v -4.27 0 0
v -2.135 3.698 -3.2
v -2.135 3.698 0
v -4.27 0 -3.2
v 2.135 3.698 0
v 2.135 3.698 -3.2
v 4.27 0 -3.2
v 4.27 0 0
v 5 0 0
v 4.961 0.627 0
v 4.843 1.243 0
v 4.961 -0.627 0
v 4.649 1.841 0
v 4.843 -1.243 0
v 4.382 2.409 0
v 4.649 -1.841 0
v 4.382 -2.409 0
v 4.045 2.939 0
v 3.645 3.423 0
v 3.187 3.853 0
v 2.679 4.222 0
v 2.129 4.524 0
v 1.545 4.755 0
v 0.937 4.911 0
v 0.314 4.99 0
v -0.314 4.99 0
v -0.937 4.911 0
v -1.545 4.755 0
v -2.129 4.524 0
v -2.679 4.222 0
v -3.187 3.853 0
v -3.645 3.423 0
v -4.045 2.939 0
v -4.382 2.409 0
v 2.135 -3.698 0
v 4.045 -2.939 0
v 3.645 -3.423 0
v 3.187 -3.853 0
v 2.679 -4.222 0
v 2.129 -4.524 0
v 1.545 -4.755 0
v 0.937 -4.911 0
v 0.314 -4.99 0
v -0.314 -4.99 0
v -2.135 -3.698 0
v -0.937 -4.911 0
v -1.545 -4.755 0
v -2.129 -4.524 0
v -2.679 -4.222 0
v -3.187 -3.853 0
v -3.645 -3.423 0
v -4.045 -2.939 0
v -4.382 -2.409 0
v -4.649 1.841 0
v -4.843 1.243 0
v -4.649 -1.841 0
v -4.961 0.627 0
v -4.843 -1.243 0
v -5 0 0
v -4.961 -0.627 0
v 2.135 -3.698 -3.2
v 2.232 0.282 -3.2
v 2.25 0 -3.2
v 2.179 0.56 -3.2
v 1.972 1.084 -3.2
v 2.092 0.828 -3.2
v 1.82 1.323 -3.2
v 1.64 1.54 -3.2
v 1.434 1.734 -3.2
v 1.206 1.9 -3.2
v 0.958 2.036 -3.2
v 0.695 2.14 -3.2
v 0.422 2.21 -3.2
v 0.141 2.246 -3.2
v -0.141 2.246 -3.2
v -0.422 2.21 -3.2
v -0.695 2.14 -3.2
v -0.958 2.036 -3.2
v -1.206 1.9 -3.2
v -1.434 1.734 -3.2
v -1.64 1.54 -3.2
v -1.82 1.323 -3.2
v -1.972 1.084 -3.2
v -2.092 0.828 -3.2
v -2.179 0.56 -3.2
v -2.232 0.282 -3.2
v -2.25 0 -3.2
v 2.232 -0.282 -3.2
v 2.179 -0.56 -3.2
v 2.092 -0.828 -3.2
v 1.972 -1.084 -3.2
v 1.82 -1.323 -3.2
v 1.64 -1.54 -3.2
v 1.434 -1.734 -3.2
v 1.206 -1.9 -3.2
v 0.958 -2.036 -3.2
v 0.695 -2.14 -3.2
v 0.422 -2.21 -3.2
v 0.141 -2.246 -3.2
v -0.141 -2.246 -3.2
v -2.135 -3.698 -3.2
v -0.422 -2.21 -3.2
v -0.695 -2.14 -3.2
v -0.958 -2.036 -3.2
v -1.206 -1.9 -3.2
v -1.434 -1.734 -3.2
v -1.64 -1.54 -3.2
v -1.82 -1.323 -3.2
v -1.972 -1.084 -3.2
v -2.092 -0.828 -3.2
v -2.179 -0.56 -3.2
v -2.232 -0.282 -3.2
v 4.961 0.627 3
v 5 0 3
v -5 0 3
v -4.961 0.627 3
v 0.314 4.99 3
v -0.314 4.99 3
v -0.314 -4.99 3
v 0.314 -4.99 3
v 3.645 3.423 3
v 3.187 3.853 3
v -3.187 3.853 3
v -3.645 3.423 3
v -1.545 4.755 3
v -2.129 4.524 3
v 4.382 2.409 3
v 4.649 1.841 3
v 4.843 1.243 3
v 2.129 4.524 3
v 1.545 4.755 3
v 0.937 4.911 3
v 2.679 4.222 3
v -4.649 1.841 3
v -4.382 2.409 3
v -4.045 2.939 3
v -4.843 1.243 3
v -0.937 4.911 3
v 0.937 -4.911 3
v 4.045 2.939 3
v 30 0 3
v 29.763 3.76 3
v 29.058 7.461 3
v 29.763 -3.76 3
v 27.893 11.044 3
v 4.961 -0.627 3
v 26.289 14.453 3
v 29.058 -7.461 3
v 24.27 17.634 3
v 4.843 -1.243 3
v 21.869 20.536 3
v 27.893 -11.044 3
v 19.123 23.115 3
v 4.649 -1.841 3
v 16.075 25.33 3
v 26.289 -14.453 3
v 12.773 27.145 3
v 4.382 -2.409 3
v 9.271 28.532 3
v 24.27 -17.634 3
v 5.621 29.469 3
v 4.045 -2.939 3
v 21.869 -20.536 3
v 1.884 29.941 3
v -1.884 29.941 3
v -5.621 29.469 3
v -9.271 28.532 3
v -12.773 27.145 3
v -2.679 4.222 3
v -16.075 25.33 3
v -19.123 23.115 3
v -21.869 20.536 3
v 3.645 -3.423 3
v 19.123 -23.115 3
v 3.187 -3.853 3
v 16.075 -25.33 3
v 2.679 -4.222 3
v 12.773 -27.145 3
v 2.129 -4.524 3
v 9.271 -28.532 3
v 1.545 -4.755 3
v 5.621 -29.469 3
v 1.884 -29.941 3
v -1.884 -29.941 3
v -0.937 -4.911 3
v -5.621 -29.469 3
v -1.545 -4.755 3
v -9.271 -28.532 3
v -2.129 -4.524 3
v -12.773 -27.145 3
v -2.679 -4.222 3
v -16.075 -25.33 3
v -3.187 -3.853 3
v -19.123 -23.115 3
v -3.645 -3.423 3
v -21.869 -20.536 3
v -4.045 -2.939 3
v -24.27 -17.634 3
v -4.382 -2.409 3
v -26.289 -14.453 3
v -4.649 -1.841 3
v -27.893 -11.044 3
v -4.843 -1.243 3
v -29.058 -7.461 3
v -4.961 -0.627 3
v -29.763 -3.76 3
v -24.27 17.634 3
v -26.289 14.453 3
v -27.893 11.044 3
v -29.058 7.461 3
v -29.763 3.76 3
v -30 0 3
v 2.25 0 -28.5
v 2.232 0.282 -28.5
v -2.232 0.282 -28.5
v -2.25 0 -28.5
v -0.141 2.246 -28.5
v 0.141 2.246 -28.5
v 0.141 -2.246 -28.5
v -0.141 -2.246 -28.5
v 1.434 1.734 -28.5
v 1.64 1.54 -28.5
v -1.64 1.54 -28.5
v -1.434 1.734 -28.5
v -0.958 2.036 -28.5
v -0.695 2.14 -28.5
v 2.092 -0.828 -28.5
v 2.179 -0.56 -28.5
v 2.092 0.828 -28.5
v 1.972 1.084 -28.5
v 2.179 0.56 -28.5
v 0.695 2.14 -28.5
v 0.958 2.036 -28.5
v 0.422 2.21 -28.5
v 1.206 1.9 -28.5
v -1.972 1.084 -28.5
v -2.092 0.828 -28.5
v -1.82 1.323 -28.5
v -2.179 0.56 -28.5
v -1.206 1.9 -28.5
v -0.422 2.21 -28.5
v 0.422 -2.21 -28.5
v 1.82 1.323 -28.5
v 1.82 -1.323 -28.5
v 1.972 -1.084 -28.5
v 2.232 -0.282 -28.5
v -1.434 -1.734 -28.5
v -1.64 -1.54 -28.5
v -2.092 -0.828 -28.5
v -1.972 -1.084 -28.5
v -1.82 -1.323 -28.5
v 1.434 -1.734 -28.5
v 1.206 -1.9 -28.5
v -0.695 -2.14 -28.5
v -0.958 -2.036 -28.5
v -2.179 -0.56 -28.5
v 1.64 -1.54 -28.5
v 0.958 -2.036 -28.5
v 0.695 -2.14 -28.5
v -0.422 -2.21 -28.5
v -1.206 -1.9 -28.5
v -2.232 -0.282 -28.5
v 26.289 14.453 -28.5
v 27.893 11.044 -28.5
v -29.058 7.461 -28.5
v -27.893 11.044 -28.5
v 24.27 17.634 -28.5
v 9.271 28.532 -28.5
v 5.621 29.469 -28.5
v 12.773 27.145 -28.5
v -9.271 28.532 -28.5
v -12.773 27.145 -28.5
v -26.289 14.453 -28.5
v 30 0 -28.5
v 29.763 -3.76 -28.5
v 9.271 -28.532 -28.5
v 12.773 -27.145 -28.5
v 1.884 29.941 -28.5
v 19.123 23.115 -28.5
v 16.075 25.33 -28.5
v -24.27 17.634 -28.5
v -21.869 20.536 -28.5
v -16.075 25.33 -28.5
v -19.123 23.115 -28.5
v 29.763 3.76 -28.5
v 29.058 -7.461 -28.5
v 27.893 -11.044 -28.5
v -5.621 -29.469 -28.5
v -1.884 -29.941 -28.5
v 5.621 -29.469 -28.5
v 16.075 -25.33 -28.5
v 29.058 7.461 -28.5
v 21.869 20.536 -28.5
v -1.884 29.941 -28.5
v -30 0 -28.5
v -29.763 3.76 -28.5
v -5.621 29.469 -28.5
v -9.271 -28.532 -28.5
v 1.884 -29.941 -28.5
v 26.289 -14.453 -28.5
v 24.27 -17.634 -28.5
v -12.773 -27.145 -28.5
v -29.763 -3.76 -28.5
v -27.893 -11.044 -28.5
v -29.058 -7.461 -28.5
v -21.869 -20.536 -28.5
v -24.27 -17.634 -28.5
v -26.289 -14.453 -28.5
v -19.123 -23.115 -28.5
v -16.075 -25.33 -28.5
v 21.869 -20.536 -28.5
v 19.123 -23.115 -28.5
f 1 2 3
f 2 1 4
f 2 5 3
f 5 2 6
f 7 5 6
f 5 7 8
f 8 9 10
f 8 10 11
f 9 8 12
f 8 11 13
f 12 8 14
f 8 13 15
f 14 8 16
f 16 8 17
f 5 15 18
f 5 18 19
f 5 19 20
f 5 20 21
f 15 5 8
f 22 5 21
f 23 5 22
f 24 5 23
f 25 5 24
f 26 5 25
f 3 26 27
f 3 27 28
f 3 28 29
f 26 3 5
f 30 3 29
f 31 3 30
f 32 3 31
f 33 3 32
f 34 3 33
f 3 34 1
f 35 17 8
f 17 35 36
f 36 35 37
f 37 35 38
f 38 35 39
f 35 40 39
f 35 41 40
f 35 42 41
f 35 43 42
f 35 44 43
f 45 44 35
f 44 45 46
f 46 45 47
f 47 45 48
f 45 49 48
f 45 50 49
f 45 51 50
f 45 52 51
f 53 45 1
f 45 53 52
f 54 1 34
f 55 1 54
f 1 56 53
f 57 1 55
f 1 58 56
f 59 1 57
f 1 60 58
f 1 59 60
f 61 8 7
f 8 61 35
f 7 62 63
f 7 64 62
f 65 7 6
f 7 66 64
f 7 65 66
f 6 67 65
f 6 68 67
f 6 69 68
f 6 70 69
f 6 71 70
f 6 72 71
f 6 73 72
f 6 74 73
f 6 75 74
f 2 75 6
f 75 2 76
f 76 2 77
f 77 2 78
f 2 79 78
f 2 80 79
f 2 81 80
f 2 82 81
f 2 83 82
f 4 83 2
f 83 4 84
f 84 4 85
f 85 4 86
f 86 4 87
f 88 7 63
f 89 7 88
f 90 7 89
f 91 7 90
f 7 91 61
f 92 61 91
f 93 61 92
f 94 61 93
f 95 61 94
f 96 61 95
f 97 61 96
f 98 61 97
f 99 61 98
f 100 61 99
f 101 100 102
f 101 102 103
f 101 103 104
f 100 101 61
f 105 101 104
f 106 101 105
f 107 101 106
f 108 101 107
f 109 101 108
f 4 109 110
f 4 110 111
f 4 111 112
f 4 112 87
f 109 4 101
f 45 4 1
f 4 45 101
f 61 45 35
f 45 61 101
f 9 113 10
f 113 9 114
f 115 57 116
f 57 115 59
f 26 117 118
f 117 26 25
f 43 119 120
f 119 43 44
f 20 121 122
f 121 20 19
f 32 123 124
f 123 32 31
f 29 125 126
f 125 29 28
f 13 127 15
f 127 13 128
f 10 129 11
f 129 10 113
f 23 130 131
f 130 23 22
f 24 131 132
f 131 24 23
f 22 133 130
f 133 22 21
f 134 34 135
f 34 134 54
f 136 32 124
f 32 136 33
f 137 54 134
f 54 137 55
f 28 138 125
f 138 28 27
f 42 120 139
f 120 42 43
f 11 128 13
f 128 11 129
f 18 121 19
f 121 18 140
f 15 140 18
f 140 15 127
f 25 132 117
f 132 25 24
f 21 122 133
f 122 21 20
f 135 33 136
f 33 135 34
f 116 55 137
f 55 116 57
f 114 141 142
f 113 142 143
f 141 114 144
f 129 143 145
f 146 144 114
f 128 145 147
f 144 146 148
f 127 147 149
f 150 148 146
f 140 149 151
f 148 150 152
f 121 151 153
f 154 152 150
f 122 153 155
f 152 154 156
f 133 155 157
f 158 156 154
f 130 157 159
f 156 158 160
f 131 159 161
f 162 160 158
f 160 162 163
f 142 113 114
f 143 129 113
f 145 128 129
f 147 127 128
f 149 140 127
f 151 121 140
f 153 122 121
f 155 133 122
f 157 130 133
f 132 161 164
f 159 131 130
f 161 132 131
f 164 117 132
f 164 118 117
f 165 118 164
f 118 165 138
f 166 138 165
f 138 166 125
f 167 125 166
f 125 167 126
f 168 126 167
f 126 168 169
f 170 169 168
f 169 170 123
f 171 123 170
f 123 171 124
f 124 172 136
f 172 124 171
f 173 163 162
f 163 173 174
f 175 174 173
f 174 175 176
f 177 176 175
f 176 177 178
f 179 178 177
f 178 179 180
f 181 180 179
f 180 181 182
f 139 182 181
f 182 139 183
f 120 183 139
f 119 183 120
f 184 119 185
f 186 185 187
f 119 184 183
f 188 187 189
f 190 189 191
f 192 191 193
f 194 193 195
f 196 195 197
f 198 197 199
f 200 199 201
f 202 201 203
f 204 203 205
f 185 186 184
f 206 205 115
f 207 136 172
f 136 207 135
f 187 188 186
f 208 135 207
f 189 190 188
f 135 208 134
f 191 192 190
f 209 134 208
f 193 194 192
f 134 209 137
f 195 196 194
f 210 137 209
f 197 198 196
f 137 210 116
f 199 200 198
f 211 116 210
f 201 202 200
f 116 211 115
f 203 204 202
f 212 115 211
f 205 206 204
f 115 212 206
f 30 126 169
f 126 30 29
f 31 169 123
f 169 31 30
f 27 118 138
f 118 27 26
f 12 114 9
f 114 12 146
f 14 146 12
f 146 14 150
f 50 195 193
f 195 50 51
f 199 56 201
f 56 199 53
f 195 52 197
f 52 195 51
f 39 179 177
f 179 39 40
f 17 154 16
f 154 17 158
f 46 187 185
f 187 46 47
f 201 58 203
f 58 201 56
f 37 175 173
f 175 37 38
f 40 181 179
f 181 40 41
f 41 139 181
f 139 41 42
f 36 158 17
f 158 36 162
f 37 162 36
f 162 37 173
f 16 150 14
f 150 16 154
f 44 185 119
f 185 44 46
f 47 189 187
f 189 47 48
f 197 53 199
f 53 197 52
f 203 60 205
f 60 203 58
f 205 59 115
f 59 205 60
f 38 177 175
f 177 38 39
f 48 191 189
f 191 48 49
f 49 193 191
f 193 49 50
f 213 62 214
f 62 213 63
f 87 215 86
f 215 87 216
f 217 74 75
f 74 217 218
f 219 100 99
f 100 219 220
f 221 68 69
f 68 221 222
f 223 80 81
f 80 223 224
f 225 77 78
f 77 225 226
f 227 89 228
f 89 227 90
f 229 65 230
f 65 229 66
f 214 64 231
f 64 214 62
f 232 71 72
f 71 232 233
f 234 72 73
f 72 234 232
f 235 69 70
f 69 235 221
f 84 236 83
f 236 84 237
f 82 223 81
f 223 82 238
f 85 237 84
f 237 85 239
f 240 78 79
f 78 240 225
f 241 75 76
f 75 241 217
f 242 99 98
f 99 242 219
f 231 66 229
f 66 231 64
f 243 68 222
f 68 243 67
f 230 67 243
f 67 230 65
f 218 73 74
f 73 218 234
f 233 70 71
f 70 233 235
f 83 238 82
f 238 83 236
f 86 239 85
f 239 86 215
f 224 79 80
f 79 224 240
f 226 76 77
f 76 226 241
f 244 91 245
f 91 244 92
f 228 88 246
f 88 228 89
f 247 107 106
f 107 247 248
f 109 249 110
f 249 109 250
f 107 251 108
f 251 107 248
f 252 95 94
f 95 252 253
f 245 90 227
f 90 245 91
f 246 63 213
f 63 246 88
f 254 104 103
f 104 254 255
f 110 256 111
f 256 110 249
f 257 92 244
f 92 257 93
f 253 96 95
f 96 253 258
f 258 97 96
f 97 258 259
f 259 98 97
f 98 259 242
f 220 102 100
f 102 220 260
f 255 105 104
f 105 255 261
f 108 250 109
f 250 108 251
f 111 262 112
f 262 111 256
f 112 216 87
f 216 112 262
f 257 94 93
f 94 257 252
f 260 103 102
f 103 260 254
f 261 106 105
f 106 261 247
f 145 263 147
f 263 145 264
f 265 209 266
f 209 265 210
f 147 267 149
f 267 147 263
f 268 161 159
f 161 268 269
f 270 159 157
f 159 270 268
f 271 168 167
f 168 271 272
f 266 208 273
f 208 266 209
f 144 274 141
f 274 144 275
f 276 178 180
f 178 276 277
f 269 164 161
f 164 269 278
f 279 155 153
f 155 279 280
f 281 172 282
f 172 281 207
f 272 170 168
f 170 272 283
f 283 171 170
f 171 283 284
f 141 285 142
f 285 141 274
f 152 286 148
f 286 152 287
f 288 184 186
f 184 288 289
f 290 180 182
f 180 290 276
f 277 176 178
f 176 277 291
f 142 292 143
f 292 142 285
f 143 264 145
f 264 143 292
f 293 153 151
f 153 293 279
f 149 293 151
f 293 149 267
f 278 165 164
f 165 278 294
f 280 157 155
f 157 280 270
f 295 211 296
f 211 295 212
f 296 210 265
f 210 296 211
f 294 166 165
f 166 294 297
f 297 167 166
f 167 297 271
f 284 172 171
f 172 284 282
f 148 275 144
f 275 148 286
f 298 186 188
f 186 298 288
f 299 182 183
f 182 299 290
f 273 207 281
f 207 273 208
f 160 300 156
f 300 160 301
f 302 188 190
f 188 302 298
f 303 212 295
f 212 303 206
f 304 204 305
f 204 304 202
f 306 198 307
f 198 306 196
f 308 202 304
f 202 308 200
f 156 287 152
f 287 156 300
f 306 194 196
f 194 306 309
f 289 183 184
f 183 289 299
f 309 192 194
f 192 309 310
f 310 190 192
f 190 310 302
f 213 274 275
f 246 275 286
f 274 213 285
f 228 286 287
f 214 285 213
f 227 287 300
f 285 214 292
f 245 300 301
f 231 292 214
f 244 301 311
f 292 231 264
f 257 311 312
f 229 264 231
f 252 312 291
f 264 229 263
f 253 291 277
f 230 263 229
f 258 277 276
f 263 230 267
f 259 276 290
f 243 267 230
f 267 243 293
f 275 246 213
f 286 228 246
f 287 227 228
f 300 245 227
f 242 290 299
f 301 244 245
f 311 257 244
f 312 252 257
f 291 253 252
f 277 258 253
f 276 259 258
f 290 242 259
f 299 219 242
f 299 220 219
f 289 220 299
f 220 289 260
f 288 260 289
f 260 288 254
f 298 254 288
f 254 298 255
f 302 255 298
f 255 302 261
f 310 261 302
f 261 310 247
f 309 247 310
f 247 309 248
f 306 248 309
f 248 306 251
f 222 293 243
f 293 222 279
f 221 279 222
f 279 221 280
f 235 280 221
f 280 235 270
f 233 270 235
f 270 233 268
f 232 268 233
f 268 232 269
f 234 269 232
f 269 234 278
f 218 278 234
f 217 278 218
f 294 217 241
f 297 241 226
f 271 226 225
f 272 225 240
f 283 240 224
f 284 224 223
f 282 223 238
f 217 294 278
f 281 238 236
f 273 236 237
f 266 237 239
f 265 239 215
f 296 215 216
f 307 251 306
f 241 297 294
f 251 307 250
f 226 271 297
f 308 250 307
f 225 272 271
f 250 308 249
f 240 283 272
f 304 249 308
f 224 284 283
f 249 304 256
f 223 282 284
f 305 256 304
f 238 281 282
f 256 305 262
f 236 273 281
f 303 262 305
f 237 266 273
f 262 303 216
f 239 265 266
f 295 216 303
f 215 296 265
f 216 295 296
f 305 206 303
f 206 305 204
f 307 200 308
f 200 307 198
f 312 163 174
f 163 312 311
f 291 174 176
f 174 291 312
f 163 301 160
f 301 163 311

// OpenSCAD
$fn = 50;

difference() {
	union() {
		translate(v = [0, 0, -28.5]) {
			cylinder(h = 31.5, r = 30.0);
		}
	}
	union() {
		translate(v = [0, 0, 0]) {
			rotate(a = [0, 0, 0]) {
				difference() {
					union() {
						translate(v = [0, 0, -3.2]) {
							linear_extrude(height = 3.2) {
								polygon(points = [[4.2698, 0.0], [2.1349000000000005, 3.697755269078796], [-2.134899999999999, 3.6977552690787965], [-4.2698, 5.228996902999369e-16], [-2.134900000000002, -3.6977552690787956], [2.1348999999999974, -3.697755269078798]]);
							}
						}
					}
					union();
				}
			}
		}
		#cylinder(h = 3, r = 5.0);
		#translate(v = [0, 0, -100.0]) {
			cylinder(h = 200, r = 2.25);
		}
	}
}
